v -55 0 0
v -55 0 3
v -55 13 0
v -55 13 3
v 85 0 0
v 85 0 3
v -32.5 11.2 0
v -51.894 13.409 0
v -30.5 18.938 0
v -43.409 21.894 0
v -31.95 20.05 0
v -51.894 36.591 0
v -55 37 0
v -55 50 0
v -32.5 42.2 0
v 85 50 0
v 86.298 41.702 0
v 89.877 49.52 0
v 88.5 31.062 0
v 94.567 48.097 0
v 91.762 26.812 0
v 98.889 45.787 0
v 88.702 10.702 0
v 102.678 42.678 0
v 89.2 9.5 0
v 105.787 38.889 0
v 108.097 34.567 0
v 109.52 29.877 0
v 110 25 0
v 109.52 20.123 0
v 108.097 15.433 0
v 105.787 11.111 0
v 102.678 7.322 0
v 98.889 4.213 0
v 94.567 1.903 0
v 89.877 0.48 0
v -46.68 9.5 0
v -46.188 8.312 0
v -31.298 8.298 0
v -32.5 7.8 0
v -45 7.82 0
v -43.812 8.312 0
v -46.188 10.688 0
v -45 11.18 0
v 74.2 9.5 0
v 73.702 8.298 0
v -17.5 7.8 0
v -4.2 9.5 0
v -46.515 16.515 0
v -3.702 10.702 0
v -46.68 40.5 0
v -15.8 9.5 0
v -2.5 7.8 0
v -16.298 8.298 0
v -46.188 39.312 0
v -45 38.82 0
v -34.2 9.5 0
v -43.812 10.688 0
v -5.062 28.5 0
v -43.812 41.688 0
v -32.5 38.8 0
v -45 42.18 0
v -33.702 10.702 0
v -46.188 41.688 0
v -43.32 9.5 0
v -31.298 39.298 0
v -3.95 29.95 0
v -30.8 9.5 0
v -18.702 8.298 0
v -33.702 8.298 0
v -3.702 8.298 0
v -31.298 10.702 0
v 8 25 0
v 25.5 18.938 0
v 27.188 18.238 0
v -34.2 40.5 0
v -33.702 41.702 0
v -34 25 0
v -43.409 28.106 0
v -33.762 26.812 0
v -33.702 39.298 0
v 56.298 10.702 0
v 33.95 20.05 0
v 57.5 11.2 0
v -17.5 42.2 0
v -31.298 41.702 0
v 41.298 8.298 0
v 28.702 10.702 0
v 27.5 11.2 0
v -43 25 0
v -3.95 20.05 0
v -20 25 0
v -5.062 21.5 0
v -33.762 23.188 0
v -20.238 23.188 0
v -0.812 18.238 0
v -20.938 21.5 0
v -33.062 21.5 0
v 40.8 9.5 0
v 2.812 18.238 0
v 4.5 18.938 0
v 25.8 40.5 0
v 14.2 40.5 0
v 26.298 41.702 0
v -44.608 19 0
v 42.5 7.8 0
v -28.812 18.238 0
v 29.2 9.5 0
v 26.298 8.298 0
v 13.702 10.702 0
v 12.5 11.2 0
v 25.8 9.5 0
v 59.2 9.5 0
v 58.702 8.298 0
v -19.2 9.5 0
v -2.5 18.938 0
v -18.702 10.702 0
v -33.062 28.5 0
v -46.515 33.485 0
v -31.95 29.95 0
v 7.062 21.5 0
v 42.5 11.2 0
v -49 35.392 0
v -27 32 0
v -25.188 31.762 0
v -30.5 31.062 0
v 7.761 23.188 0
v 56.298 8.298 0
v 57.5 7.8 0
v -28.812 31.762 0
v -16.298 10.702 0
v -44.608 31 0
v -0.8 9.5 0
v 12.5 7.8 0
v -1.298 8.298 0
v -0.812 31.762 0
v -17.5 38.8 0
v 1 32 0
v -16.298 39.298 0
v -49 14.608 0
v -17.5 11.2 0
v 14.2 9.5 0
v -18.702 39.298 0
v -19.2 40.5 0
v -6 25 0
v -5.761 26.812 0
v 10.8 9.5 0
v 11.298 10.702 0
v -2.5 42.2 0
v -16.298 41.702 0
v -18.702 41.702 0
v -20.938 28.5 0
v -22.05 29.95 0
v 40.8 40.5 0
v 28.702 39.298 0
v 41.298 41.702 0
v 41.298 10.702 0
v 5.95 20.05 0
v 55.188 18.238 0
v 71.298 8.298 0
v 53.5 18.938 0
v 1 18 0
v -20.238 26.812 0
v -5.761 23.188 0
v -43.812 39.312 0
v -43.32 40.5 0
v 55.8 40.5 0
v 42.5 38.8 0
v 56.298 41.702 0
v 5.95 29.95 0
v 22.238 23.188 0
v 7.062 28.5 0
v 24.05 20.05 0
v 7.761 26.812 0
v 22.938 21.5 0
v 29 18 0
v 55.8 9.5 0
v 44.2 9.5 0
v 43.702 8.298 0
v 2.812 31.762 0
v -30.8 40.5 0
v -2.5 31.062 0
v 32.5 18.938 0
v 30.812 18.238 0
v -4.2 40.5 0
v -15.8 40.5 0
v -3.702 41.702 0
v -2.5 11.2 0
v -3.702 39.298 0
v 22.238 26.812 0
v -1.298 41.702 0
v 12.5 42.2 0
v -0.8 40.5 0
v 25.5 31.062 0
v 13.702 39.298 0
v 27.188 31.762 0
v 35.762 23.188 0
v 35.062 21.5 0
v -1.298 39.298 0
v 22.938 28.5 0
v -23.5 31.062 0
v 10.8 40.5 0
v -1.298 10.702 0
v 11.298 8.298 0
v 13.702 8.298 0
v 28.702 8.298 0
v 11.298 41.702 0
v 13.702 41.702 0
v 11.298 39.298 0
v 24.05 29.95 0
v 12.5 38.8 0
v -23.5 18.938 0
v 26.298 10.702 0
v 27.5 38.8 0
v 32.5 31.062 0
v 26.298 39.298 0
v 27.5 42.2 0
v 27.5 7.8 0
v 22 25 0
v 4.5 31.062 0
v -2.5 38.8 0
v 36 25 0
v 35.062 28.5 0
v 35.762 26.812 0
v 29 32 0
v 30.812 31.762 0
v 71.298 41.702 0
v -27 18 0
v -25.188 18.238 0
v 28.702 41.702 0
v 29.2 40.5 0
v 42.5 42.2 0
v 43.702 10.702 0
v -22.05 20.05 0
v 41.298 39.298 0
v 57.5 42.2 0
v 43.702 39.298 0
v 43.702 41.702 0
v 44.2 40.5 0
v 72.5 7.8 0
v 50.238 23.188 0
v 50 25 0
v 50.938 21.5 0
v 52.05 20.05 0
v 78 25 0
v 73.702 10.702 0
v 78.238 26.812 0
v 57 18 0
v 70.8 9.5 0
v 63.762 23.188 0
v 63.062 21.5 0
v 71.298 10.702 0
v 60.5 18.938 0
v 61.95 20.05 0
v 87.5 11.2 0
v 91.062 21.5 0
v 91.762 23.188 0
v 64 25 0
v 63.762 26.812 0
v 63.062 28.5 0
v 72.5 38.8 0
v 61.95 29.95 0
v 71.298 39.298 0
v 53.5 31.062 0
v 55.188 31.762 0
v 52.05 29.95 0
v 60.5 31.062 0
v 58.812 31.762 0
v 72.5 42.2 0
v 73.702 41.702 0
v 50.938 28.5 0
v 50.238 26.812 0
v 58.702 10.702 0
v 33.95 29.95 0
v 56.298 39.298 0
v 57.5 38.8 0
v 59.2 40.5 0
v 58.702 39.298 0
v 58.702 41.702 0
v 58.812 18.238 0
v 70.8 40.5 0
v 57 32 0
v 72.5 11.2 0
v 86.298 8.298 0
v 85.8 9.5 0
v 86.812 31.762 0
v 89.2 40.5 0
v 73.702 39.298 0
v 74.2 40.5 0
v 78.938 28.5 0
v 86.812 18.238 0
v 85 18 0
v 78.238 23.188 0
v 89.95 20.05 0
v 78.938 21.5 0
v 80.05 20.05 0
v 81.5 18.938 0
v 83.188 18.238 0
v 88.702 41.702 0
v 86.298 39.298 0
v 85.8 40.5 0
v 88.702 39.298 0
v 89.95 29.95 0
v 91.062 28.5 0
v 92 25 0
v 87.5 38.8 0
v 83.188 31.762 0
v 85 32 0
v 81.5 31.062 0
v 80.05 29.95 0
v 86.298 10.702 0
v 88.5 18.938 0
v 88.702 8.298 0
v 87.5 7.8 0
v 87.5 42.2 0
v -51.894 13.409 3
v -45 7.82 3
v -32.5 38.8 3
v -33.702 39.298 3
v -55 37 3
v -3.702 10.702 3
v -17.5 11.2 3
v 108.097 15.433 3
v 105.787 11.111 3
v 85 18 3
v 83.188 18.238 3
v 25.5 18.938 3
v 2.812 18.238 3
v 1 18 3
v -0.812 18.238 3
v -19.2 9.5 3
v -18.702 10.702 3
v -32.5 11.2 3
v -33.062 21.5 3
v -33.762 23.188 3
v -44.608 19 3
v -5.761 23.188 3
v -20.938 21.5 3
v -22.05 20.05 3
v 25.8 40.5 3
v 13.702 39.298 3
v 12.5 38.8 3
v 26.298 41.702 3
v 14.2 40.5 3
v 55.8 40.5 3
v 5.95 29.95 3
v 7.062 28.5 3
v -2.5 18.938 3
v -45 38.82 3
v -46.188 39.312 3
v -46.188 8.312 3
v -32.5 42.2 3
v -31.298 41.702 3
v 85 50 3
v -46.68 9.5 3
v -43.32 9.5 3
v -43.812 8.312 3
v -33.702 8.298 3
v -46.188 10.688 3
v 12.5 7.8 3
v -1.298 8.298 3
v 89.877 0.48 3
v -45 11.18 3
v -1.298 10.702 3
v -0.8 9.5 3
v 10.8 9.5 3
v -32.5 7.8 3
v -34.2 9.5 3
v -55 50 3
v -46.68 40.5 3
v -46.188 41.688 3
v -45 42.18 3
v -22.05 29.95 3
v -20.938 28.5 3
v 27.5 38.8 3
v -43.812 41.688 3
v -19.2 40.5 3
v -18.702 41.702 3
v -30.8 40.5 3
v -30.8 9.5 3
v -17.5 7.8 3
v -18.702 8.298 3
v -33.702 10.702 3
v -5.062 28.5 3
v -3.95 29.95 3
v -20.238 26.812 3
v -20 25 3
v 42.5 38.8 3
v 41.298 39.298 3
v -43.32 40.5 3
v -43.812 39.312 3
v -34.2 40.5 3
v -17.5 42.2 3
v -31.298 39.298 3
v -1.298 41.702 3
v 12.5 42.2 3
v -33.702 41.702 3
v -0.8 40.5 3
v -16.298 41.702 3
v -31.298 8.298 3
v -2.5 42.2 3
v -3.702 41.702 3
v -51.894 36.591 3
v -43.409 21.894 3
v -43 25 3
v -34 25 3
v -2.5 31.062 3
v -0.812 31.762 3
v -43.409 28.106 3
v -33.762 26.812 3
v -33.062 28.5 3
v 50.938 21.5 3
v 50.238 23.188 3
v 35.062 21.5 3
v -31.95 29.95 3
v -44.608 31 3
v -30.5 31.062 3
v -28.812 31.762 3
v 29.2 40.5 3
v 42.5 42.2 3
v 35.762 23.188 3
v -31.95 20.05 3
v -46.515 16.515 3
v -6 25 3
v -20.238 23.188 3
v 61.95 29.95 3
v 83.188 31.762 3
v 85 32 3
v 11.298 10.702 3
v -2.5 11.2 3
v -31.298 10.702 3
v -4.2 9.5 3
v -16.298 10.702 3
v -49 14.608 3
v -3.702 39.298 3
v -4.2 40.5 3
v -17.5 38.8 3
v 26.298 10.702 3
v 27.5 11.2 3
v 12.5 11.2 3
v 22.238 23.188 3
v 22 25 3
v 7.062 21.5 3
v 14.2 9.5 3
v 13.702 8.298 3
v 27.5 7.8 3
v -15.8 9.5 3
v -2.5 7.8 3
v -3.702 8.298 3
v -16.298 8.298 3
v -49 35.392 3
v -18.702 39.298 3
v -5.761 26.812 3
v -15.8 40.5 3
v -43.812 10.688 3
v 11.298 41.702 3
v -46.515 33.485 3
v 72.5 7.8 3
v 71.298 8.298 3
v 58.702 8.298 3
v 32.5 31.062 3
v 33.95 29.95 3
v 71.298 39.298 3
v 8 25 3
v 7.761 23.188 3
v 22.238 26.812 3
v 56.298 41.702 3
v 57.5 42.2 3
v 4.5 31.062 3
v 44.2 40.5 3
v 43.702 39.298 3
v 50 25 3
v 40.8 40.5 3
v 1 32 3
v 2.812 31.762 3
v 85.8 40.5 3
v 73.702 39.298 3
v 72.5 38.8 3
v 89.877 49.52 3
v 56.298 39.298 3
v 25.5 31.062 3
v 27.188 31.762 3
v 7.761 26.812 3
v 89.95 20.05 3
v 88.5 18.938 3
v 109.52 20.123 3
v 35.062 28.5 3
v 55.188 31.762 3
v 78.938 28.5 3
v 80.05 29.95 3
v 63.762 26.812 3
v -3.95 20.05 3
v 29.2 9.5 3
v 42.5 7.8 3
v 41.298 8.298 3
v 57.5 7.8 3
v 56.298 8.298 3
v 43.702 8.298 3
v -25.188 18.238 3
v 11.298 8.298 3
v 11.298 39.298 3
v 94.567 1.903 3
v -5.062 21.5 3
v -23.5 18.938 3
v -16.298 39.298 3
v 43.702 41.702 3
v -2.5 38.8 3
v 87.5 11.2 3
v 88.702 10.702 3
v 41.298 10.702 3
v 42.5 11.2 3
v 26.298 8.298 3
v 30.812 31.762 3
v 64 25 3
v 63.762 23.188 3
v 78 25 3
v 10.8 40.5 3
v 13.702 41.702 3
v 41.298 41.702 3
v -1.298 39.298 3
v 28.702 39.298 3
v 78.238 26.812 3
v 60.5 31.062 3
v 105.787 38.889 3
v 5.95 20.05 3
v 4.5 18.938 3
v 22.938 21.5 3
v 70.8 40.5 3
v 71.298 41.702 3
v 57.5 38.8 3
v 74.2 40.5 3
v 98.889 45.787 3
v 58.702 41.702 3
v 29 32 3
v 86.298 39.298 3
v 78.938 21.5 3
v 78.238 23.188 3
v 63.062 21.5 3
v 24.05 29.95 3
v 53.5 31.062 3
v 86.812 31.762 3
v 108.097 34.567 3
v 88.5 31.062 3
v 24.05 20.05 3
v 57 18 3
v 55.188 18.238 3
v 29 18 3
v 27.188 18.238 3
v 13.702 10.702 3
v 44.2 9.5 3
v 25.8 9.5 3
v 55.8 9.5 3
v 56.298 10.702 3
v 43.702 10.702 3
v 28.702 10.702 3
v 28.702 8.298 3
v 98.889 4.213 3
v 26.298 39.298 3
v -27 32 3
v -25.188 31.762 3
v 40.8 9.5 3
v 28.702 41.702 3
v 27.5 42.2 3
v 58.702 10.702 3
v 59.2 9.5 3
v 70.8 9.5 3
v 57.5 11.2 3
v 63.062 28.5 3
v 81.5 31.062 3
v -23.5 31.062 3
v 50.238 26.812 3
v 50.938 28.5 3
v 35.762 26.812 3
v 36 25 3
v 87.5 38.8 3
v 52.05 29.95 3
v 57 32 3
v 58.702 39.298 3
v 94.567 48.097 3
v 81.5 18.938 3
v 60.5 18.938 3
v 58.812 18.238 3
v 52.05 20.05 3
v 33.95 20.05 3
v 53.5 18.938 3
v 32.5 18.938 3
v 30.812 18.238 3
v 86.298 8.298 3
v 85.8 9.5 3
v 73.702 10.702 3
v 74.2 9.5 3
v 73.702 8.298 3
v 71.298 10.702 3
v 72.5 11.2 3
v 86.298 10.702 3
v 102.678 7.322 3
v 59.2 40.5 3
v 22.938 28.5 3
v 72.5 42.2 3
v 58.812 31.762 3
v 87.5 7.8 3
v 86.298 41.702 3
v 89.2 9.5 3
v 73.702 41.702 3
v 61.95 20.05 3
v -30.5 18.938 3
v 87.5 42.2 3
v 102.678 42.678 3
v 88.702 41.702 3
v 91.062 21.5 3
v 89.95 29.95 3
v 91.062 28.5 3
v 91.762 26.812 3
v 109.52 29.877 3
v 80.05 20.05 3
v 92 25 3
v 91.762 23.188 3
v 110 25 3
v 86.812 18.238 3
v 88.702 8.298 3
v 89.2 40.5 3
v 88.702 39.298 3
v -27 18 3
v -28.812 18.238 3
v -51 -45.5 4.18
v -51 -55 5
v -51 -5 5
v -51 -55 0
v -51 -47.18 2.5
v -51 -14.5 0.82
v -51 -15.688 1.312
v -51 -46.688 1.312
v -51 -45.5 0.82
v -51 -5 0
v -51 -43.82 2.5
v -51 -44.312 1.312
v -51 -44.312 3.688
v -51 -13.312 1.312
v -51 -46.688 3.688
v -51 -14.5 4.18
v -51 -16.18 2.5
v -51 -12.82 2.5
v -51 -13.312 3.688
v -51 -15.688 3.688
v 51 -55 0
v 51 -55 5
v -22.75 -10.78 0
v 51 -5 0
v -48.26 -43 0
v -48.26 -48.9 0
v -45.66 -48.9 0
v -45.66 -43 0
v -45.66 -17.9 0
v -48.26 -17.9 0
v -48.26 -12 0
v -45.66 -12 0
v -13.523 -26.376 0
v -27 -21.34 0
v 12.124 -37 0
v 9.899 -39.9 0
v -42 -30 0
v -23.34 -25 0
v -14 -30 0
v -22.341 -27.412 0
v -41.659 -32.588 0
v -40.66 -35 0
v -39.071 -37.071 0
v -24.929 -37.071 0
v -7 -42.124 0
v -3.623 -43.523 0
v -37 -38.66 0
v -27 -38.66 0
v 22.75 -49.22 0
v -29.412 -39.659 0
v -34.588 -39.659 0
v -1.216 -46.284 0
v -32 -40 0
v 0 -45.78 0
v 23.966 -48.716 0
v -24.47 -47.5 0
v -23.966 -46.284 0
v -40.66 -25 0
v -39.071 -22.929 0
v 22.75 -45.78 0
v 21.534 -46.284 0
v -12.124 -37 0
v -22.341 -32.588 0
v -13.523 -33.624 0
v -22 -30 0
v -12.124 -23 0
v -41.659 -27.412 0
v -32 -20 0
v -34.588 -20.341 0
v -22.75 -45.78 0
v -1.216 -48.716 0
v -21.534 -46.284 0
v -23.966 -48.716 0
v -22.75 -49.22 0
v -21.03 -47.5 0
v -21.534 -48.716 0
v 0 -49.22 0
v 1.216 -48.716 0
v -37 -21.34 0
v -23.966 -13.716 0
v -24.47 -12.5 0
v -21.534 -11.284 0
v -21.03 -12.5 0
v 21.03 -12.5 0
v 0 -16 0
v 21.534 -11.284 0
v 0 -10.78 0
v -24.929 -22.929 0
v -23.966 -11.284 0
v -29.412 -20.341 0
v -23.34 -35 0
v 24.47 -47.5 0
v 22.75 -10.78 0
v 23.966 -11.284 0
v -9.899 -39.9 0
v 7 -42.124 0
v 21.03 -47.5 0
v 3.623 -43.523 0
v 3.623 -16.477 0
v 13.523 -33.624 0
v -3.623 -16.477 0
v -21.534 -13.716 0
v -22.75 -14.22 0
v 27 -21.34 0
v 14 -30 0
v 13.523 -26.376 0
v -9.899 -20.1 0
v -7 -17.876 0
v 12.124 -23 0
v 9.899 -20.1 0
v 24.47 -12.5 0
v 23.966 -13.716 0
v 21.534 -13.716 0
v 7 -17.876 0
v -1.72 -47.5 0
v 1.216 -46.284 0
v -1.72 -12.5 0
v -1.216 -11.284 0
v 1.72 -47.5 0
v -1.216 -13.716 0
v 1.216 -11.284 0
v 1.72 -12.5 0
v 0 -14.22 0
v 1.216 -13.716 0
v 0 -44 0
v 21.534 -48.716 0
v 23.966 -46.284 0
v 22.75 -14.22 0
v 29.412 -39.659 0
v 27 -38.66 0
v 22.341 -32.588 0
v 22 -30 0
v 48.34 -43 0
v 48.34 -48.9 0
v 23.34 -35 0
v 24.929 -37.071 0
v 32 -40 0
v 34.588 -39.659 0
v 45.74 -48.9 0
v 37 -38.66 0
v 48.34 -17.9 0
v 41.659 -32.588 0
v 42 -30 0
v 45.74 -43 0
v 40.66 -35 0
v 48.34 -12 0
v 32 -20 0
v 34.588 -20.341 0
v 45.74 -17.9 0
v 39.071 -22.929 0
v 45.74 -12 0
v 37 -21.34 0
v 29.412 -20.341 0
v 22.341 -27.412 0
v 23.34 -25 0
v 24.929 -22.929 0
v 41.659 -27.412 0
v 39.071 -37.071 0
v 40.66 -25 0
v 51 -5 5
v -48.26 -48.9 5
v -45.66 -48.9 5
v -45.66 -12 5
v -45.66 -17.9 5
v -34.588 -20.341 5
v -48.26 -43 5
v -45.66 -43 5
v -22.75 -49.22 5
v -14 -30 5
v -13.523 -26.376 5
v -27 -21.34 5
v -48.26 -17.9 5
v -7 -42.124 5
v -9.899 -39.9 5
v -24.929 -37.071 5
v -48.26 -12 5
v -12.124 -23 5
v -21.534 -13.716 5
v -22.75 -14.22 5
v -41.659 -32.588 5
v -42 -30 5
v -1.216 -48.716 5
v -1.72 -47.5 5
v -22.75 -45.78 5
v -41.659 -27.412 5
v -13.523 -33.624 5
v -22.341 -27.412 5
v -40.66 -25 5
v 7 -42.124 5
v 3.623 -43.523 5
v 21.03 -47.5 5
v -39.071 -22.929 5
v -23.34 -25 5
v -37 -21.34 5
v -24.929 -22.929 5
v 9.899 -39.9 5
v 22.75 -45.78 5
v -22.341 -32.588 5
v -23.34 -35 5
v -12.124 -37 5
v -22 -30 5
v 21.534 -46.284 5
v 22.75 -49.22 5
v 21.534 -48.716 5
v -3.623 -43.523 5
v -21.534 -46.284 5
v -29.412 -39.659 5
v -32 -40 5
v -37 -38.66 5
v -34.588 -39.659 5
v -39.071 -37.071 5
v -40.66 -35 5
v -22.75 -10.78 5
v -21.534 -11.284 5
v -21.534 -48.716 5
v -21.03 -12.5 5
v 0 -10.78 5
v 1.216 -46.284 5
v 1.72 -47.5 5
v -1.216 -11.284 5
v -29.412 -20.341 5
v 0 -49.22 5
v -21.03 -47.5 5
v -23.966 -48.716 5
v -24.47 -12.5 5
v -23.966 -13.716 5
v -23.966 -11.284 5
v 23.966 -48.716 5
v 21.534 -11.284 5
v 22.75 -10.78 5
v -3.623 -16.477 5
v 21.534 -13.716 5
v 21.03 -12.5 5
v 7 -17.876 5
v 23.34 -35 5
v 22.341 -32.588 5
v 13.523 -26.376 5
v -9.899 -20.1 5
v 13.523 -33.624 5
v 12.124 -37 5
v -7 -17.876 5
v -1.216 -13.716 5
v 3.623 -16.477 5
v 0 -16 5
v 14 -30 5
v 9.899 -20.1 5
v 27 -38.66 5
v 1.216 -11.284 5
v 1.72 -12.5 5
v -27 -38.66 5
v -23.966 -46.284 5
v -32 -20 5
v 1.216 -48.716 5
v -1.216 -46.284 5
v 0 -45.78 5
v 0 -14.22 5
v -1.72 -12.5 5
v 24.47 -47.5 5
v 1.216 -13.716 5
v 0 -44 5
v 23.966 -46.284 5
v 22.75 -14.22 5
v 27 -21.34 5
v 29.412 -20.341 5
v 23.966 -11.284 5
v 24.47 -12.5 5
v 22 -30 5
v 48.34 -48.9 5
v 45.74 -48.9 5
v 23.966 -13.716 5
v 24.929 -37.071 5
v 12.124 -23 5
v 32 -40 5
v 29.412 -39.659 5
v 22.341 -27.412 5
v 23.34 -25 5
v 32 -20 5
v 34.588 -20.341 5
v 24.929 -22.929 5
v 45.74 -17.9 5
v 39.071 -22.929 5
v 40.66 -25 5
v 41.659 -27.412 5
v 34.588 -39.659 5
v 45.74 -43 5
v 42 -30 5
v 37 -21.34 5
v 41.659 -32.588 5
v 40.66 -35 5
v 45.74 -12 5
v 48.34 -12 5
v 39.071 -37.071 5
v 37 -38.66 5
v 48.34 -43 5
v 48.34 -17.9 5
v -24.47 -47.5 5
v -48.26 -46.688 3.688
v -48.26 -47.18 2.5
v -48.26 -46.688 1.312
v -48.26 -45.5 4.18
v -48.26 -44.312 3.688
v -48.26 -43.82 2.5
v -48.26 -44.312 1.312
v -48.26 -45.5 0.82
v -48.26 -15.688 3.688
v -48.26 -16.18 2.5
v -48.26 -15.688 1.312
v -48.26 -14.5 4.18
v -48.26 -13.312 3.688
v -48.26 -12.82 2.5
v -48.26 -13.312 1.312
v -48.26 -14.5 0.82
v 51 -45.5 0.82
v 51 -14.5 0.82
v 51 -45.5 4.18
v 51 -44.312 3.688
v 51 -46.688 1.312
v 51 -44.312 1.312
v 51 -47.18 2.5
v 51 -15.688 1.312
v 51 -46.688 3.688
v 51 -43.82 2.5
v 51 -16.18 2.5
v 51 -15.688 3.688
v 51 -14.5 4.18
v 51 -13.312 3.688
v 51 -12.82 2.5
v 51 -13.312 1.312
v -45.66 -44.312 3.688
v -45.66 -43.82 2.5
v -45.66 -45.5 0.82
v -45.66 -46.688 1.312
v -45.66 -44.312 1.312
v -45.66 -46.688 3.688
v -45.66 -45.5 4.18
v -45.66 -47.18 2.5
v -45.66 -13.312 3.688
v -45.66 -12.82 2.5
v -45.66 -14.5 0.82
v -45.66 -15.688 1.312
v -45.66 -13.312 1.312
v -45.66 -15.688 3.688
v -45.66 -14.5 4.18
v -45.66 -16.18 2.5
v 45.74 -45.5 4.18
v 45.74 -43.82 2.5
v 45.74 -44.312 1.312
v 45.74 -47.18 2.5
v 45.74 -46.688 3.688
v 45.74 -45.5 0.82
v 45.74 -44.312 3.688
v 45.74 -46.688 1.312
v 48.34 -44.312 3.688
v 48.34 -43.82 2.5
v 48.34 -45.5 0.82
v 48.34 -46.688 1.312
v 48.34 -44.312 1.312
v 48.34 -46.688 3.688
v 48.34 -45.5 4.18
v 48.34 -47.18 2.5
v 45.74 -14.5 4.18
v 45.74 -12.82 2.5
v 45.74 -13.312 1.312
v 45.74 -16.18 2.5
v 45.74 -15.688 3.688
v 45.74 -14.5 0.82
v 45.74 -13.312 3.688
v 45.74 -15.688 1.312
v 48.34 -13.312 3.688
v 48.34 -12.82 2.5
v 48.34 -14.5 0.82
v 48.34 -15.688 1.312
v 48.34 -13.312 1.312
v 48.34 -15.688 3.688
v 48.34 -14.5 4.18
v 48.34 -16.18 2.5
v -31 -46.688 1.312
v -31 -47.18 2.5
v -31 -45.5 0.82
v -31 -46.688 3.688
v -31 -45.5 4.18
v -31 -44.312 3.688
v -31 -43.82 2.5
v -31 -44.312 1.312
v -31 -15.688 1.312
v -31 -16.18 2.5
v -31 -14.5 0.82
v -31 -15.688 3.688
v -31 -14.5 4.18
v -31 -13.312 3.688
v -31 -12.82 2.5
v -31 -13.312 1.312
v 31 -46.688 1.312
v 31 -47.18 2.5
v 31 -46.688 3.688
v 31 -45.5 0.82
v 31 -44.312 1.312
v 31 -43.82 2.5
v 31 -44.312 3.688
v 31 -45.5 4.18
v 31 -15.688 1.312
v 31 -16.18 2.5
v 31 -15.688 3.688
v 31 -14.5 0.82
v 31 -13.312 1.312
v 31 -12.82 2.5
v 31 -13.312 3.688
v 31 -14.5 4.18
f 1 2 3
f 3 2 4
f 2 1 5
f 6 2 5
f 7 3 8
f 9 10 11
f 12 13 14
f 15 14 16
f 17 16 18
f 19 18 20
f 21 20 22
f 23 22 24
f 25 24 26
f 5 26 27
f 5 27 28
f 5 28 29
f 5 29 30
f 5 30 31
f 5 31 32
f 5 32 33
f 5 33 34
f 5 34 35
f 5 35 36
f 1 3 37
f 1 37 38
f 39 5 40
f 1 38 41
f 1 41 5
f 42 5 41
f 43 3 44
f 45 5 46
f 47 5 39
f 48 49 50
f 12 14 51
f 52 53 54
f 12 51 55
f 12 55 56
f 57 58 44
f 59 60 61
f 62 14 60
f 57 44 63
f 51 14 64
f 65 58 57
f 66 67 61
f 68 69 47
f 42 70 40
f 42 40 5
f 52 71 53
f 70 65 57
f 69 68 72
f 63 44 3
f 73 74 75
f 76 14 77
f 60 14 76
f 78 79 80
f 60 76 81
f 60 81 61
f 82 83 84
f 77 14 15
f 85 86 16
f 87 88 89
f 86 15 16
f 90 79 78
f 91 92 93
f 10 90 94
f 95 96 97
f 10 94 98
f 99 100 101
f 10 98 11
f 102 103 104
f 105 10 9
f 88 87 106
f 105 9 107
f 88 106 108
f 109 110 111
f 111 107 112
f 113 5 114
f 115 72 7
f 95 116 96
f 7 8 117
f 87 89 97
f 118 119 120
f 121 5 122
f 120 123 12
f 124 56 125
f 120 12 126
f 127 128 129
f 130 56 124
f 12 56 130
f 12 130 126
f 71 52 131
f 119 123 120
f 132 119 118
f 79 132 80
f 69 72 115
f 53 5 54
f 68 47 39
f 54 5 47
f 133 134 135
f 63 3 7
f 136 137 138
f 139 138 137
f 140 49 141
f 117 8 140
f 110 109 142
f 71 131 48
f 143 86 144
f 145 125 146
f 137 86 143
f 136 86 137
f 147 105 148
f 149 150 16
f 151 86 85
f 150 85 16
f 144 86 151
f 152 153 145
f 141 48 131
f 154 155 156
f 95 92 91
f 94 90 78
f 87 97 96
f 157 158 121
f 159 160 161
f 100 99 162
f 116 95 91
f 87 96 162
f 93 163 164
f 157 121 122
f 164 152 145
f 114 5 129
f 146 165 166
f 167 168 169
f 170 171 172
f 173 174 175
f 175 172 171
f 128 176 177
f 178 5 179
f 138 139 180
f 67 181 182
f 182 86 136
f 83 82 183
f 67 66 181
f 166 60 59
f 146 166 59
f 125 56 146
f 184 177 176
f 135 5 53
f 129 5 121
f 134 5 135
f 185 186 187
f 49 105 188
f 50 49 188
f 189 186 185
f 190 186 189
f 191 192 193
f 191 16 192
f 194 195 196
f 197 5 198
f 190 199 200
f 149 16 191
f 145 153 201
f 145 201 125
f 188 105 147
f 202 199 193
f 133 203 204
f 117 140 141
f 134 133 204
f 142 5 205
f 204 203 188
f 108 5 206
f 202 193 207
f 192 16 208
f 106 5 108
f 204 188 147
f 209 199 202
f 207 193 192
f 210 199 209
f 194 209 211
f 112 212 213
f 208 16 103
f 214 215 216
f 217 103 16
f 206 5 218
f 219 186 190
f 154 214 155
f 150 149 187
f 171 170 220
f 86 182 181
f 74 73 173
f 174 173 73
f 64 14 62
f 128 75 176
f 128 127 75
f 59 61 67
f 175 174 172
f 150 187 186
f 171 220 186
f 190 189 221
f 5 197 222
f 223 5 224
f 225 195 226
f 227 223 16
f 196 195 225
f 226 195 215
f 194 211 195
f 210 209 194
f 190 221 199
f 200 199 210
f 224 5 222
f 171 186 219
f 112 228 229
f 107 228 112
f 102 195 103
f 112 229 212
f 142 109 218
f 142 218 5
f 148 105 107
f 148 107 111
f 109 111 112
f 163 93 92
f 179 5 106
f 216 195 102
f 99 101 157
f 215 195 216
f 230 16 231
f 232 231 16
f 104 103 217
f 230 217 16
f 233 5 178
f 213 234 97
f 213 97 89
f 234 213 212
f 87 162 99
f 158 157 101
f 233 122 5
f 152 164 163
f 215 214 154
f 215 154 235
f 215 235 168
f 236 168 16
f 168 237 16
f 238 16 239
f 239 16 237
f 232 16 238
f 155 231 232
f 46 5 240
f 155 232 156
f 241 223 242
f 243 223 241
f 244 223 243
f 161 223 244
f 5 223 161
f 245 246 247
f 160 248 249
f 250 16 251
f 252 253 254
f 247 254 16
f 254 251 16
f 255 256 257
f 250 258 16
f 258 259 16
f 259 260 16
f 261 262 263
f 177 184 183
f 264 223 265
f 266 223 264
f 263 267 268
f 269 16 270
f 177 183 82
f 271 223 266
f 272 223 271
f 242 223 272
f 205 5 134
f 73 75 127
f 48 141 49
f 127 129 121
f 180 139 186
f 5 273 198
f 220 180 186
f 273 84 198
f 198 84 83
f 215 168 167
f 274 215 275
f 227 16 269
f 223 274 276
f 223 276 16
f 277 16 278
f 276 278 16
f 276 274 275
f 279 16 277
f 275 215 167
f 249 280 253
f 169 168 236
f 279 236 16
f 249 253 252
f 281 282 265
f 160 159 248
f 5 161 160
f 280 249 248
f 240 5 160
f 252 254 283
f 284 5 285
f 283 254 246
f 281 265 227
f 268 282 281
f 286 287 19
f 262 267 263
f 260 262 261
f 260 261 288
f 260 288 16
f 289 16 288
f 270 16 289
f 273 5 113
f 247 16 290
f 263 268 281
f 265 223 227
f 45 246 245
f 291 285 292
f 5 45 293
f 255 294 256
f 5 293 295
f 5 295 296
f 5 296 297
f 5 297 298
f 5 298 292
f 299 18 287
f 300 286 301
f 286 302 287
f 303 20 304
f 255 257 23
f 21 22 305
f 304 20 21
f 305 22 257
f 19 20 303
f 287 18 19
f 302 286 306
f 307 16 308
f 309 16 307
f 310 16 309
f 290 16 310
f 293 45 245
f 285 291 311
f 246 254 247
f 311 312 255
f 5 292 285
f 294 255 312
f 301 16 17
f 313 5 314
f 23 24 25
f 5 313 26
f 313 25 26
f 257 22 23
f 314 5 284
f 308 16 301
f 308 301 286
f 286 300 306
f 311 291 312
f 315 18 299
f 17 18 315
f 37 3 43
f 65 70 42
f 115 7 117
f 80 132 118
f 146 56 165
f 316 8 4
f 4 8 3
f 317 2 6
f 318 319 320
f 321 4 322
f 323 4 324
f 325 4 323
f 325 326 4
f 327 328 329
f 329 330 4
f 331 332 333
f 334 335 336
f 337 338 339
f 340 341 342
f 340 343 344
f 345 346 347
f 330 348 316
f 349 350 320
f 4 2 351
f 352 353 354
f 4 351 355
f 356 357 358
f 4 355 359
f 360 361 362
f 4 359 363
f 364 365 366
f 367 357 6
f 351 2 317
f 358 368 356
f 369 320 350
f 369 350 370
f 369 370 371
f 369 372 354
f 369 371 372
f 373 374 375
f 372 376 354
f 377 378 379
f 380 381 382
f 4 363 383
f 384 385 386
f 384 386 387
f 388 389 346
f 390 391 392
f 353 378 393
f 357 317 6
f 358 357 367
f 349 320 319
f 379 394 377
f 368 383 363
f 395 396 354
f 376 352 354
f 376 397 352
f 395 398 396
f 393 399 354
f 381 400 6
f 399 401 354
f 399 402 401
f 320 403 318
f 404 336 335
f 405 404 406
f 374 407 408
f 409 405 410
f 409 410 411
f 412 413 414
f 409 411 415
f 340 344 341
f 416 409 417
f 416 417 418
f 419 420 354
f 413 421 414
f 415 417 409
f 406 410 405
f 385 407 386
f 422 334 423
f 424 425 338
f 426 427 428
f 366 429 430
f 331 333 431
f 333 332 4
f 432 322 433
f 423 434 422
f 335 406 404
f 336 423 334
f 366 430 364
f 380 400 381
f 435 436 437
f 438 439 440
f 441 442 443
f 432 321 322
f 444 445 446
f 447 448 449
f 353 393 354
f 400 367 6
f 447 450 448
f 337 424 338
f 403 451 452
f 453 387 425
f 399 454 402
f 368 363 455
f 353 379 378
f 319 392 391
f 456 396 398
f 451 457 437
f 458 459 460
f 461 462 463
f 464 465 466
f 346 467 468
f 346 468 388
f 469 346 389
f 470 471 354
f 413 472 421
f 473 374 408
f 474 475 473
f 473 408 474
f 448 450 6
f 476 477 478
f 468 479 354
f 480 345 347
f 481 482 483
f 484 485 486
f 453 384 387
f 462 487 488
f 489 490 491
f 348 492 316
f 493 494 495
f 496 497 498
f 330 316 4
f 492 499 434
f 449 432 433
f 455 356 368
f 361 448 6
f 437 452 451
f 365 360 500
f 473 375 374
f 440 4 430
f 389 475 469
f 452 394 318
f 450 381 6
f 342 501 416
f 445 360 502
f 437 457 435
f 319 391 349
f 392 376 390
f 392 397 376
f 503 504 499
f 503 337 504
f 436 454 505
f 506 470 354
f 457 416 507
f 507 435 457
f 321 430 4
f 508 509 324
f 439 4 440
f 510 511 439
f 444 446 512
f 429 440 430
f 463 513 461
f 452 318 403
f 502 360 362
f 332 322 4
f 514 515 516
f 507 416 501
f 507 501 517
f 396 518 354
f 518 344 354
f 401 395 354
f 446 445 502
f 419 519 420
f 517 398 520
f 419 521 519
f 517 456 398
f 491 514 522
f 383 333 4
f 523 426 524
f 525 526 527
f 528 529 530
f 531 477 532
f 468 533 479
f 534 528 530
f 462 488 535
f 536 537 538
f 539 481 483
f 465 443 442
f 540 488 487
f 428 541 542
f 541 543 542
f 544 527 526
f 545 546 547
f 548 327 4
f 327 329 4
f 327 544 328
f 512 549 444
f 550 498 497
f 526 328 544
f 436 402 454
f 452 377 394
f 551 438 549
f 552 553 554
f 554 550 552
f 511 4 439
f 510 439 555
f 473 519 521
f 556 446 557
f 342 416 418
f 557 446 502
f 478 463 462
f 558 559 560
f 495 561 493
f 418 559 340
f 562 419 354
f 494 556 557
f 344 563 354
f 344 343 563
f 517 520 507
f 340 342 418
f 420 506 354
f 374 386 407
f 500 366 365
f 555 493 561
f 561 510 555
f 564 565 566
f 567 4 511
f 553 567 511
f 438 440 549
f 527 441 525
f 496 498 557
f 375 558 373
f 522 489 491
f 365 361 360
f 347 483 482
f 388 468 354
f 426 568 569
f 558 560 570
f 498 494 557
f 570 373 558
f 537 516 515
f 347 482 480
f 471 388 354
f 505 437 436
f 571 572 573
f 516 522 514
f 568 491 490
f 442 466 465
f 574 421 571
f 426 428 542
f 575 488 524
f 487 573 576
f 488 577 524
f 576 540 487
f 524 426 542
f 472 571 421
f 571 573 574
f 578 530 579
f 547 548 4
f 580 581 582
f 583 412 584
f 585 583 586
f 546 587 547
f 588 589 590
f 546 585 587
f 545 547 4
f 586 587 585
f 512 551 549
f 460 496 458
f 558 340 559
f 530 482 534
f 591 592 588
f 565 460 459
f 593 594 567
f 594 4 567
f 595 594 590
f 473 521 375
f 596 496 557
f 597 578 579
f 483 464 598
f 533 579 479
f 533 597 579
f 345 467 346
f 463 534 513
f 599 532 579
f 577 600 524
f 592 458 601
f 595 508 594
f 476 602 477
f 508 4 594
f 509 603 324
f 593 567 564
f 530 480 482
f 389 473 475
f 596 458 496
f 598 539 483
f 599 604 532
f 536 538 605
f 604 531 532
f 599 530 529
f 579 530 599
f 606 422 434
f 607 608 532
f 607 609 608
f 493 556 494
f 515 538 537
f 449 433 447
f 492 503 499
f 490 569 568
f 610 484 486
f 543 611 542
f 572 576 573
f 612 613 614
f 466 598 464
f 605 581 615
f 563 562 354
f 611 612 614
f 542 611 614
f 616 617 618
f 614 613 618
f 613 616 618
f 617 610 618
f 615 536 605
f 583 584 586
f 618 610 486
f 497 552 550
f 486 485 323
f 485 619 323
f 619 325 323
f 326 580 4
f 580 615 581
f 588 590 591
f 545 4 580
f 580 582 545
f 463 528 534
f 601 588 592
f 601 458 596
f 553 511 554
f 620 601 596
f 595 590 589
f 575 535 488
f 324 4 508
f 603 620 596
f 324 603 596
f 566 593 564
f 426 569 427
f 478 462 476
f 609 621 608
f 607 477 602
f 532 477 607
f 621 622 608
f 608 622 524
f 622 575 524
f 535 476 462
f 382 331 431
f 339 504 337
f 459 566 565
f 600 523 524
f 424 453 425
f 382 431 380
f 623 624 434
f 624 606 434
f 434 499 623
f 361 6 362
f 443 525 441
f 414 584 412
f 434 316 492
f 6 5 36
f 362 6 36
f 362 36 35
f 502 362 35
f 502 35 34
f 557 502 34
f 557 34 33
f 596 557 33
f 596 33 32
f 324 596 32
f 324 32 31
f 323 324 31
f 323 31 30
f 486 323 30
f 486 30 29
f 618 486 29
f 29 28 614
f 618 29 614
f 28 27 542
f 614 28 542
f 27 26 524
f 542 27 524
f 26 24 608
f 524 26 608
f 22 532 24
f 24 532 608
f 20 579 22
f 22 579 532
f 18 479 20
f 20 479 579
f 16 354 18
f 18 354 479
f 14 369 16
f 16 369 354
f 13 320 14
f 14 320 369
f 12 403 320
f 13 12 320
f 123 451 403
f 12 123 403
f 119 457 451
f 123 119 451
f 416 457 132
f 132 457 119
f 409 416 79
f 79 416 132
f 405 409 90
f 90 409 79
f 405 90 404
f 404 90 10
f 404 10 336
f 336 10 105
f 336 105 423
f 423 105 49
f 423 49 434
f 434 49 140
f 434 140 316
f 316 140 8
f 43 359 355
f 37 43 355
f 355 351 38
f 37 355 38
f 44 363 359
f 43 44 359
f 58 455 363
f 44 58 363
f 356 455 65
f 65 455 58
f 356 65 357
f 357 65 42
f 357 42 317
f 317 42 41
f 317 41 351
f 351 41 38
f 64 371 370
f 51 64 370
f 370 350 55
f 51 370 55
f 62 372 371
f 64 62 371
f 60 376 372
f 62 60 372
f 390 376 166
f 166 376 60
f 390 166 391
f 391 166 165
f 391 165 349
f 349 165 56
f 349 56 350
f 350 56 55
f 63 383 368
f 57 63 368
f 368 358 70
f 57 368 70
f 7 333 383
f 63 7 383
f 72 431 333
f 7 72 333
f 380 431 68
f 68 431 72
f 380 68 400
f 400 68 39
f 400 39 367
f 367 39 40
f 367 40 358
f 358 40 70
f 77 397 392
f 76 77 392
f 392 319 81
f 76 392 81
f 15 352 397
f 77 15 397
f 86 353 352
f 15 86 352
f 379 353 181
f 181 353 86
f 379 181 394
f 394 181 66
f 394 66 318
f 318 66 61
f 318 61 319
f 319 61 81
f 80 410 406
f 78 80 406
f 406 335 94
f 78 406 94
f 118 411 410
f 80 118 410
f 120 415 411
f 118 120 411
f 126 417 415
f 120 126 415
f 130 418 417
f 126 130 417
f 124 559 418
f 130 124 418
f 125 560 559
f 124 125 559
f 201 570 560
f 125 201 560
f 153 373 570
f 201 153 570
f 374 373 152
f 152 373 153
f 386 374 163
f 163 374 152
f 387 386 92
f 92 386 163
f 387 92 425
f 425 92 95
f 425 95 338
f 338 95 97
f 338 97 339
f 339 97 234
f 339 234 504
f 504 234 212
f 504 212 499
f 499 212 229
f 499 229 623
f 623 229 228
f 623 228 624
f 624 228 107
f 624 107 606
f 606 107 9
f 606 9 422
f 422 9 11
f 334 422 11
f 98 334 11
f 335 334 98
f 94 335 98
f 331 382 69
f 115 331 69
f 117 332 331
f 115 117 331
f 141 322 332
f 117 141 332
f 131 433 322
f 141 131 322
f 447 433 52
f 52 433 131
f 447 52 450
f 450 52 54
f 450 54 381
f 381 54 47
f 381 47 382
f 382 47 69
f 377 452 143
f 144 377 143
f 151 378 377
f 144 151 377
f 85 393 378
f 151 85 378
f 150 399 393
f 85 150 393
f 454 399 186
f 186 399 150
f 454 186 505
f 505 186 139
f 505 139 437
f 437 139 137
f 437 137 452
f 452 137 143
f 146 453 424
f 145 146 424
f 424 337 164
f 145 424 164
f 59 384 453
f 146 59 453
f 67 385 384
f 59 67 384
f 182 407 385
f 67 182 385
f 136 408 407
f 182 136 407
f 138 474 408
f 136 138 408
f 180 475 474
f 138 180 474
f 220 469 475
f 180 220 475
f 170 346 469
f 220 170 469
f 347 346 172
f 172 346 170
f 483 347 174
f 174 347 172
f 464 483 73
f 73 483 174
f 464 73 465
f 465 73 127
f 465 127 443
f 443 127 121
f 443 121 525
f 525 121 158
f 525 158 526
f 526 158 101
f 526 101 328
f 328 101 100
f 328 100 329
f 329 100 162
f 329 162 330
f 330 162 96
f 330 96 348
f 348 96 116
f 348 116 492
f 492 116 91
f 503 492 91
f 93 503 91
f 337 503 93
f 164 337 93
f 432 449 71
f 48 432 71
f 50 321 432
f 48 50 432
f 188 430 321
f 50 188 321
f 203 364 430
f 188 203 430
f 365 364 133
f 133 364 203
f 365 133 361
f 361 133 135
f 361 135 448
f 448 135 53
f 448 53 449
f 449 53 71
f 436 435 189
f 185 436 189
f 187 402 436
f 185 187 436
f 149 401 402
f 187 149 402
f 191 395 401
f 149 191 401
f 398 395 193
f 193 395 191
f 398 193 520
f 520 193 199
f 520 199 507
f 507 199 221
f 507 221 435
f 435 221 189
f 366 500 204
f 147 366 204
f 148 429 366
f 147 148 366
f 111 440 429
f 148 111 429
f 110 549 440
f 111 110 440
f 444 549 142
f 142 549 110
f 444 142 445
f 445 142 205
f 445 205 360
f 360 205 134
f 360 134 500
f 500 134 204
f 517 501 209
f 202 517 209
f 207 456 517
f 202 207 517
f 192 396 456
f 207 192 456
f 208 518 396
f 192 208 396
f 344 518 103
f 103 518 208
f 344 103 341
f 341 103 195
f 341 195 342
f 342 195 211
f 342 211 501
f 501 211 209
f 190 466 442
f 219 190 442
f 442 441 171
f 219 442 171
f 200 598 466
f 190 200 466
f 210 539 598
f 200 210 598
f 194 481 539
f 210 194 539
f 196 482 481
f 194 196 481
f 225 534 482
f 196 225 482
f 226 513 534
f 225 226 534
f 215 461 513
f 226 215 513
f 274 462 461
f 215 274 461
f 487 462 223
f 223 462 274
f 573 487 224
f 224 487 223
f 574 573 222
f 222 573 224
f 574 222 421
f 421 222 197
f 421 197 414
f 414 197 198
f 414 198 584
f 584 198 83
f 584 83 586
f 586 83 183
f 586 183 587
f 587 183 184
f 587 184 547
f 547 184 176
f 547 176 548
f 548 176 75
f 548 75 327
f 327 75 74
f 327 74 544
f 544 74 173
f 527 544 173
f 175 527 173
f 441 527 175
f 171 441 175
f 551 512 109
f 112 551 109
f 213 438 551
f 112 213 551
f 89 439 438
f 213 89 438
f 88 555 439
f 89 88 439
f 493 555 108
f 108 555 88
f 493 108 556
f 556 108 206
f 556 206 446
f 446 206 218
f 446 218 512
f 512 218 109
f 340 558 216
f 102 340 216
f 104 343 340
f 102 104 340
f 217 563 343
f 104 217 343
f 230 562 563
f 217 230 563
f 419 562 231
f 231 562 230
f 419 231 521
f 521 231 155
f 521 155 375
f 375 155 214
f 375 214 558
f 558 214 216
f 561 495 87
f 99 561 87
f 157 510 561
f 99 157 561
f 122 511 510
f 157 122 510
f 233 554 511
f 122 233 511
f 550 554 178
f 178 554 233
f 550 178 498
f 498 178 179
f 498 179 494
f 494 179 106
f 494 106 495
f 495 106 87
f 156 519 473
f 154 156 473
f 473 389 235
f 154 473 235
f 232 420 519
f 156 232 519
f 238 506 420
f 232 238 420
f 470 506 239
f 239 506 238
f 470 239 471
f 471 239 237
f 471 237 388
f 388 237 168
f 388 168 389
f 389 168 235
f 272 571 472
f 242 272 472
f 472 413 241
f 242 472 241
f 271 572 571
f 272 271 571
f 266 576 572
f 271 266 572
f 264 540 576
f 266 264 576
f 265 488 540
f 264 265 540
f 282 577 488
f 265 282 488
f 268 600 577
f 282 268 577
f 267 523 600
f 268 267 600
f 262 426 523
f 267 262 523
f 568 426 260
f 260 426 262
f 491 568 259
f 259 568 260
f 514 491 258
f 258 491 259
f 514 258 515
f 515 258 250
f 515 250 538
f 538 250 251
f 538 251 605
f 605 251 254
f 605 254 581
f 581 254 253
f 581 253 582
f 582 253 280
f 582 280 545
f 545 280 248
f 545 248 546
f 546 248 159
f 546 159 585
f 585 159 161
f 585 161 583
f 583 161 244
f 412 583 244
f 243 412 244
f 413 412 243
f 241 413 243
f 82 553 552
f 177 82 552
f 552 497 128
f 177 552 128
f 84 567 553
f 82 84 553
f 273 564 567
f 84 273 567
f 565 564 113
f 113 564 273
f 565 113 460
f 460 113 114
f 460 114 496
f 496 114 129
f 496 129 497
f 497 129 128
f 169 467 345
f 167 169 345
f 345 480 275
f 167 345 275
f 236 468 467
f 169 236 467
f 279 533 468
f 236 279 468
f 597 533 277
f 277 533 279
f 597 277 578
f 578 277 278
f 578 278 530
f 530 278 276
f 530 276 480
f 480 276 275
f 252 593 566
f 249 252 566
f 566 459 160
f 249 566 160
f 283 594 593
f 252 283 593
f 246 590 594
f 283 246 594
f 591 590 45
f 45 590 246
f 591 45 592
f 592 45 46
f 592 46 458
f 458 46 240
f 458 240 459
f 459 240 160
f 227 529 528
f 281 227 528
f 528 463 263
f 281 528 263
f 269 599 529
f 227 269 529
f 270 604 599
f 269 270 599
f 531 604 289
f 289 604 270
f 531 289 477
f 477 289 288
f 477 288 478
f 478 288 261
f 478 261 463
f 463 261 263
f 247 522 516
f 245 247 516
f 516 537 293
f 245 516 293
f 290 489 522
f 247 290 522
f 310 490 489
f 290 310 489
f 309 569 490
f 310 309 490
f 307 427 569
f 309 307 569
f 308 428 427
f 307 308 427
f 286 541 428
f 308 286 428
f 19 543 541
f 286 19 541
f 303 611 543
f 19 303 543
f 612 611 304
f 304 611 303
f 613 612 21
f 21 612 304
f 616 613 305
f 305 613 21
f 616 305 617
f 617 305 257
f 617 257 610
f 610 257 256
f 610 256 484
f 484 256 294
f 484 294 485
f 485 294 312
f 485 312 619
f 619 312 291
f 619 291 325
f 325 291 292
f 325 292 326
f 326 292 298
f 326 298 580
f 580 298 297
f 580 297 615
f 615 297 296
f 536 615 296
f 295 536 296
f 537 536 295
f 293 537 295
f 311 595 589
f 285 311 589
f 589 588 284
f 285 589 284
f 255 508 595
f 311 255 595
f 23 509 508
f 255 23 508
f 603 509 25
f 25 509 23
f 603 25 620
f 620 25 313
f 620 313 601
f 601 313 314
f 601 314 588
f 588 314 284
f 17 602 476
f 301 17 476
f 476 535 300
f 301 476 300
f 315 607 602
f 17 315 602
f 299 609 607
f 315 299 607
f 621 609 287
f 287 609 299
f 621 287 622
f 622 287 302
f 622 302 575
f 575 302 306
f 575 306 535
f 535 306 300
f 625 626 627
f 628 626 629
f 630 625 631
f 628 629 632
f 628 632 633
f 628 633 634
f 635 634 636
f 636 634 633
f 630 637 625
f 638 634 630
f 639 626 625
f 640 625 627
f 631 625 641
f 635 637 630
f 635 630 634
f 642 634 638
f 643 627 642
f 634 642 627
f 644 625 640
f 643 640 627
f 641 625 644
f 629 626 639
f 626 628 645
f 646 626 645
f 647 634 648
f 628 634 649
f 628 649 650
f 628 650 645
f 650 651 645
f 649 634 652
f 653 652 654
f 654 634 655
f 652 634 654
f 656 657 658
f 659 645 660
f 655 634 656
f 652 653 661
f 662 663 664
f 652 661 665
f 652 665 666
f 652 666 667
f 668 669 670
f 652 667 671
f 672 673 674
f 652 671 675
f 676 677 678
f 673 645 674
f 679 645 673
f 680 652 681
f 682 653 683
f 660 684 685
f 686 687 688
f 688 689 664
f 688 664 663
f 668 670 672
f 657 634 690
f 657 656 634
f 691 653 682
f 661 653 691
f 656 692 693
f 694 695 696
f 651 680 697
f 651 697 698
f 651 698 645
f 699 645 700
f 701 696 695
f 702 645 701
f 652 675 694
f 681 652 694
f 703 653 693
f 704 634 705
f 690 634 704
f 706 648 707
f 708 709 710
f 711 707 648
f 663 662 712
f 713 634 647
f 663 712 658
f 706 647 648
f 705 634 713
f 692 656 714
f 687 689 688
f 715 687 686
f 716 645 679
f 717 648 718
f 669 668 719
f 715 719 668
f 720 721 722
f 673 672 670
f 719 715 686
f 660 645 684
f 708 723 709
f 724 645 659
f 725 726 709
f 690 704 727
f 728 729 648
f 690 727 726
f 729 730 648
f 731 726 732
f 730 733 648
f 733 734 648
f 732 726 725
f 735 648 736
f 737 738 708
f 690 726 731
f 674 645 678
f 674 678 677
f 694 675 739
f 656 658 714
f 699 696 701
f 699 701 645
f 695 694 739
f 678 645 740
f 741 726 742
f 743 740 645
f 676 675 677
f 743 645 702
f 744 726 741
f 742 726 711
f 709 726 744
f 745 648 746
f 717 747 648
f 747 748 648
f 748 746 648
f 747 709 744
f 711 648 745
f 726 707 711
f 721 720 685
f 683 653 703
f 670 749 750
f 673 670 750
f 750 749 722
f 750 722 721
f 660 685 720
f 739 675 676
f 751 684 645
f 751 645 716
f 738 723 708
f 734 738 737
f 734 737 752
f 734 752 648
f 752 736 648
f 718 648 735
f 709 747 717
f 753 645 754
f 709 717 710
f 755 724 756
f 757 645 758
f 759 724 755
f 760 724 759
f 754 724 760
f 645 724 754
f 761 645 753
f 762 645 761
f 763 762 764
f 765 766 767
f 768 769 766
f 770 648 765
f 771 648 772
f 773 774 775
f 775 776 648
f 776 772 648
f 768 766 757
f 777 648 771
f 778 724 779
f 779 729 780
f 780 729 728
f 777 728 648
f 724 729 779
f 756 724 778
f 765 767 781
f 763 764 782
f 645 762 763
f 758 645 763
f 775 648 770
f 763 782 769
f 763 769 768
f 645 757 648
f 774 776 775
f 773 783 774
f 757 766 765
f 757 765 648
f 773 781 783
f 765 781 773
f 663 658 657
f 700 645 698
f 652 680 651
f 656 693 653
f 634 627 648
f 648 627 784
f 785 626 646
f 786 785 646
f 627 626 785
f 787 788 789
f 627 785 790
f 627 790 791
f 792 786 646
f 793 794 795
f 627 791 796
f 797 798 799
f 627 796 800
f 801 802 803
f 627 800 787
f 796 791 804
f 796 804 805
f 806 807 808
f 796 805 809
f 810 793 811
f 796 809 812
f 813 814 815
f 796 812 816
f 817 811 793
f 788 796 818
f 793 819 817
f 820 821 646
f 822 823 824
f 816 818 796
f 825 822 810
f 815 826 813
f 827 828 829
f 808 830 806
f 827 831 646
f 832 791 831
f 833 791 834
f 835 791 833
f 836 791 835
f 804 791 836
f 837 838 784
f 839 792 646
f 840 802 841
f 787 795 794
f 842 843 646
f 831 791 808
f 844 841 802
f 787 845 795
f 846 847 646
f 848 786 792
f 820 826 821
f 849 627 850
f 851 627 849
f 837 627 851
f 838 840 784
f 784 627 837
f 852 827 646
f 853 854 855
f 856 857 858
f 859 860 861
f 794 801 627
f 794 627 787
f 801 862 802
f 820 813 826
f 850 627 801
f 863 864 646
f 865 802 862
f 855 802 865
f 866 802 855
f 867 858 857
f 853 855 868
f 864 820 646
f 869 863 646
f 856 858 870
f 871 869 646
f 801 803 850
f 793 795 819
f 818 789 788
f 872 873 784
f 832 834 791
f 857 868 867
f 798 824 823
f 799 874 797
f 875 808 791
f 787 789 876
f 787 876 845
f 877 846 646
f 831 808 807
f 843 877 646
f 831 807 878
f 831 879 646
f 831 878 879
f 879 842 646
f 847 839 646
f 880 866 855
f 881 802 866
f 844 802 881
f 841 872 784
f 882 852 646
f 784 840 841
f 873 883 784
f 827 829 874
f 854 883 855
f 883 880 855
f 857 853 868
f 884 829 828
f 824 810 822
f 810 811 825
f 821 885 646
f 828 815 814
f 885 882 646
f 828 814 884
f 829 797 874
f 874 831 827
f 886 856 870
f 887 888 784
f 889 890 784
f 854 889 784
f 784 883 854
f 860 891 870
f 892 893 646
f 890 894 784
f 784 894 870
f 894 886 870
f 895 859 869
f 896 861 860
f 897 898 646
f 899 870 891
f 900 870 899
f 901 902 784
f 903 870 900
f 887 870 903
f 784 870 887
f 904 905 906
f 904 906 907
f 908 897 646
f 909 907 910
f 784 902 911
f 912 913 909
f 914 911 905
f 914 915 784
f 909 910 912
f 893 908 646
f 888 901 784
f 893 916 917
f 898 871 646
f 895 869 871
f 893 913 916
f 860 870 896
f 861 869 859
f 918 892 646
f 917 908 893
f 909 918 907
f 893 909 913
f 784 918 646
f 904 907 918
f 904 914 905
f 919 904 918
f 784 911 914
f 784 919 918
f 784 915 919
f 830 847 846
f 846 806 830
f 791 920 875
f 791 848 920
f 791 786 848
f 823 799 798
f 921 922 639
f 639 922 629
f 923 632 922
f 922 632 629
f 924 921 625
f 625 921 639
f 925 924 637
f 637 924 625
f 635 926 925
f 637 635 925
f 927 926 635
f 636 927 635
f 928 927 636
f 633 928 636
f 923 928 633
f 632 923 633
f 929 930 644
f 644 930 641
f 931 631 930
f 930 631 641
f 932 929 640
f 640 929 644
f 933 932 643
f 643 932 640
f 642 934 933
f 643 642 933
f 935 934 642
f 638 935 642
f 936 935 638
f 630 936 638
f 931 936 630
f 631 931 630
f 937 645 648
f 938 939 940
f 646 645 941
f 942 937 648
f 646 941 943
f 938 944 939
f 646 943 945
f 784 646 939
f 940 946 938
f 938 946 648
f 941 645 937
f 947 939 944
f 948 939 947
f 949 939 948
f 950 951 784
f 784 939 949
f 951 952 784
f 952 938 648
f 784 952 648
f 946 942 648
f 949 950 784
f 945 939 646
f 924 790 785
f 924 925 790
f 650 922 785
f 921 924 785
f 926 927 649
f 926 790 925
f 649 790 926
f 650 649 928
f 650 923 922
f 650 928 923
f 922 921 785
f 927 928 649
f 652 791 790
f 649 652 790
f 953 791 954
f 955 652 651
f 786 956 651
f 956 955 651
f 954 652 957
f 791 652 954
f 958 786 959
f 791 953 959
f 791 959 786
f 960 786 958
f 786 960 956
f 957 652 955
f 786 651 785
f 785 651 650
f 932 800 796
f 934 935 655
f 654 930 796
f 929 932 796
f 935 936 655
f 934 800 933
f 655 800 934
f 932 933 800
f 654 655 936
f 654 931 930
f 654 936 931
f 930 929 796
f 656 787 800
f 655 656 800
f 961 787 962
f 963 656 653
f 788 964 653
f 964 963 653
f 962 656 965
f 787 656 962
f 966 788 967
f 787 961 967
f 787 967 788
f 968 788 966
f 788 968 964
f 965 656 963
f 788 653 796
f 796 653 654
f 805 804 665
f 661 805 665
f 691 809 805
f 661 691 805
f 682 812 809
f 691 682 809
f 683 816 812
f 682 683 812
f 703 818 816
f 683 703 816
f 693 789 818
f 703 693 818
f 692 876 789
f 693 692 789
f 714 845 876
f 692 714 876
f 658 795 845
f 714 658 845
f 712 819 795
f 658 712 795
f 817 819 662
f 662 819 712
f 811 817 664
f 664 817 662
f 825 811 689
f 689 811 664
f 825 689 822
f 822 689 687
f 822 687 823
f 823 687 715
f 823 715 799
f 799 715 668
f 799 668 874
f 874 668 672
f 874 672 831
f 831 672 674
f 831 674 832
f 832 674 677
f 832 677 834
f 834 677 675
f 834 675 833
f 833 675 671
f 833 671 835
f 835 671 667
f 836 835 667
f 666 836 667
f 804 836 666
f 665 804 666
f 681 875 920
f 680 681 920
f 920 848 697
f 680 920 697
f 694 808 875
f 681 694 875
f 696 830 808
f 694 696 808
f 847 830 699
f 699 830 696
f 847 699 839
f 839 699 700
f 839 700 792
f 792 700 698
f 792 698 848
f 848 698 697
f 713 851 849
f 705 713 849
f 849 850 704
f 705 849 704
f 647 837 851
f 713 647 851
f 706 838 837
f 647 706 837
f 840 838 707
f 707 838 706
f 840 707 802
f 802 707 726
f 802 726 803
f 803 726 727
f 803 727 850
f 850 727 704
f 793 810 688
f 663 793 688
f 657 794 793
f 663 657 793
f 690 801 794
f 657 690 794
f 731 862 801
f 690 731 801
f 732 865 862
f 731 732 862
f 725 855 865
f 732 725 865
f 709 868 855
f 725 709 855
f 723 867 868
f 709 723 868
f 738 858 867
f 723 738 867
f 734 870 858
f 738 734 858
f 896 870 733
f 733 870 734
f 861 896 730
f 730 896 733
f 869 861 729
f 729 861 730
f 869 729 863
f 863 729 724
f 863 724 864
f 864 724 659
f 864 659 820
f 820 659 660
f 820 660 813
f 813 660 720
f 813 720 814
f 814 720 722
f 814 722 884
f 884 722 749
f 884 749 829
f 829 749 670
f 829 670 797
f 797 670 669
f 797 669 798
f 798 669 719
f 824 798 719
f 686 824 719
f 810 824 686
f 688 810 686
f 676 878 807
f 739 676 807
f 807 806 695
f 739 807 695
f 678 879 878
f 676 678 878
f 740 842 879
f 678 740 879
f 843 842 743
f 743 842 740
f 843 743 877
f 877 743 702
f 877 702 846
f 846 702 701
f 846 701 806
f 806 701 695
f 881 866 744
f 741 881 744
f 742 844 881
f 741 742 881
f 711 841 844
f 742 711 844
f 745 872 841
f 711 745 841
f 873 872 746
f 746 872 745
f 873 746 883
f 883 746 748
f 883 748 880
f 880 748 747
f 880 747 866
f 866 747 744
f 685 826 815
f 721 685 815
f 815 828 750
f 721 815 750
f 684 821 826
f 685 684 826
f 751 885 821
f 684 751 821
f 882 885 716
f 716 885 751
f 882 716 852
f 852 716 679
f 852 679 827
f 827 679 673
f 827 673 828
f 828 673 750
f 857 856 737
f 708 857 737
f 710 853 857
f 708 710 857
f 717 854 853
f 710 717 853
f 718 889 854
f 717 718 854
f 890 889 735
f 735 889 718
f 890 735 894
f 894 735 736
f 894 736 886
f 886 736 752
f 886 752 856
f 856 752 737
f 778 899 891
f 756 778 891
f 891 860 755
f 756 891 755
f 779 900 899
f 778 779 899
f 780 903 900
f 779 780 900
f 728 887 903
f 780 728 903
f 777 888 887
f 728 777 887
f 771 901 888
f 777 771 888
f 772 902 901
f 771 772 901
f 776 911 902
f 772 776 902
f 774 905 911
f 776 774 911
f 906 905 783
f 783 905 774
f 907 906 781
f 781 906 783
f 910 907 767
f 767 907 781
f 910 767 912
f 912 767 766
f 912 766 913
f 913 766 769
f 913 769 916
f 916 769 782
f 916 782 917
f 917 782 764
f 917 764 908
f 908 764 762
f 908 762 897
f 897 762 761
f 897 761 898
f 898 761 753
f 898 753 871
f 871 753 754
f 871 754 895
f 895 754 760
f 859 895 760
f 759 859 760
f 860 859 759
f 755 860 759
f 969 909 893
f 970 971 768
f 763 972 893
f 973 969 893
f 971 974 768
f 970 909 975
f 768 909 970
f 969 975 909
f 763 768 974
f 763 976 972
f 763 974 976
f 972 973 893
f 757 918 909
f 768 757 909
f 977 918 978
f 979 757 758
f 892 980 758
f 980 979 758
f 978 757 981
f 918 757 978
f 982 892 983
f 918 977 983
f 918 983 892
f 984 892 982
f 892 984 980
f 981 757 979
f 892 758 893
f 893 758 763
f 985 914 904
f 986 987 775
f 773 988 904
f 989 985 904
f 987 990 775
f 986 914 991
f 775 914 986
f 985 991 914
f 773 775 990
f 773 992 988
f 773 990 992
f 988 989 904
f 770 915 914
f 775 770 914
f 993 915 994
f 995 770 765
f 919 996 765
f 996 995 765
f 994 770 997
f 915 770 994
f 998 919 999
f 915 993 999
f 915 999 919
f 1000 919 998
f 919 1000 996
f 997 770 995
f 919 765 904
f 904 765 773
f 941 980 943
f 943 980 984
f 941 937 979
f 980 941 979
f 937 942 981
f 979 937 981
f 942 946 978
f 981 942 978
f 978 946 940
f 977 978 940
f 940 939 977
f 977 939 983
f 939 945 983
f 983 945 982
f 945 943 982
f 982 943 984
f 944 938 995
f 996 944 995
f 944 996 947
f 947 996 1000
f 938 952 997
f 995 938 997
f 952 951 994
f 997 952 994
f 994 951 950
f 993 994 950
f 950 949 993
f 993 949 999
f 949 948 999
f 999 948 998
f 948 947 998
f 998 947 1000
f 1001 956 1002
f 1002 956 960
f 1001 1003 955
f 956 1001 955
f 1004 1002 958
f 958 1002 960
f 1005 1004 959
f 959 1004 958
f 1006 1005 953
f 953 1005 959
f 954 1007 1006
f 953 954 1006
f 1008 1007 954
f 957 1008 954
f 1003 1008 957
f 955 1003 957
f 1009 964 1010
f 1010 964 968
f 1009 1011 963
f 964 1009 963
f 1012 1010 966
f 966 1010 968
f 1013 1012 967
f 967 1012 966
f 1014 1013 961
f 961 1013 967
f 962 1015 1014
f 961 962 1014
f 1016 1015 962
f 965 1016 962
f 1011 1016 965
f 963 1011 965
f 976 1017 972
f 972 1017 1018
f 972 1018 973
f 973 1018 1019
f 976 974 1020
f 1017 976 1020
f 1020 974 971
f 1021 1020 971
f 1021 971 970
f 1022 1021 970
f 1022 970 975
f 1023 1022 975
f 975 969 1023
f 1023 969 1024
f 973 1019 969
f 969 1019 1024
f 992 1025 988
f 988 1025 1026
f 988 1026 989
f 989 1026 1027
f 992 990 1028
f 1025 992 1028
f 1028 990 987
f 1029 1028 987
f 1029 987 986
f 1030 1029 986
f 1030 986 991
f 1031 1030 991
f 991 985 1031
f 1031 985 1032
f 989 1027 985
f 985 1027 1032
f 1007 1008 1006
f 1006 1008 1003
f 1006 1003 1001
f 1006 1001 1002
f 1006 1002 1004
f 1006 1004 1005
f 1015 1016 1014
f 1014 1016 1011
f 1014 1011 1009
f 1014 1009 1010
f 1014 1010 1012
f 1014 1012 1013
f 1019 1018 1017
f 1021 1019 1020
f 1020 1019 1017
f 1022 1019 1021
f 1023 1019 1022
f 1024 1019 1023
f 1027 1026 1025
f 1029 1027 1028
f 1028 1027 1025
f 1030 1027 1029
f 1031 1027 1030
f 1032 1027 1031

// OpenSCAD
// file: dimensions.scad
// Originally created by Jose Julio
// https://github.com/JJulio/b-robot

SHARED_HEIGHT = 140;
SHARED_LENGTH = 102;
SHARED_WIDTH  = 50;
// file: support_plate.scad
// Originally created by Jose Julio
// https://github.com/JJulio/b-robot

include <dimensions.scad>;

module support()
{
  translate([-(SHARED_LENGTH)/2,0,0]) cube([SHARED_LENGTH,SHARED_WIDTH,5]);

}

module support_holes()
{
  // M3 lateral holes
  translate([(SHARED_LENGTH)/2,9.5,5/2]) rotate([0,90,0]) cylinder(r=1.68,h=40,$fn=8,center=true);
  translate([(SHARED_LENGTH)/2,9.5+31,5/2]) rotate([0,90,0]) cylinder(r=1.68,h=40,$fn=8,center=true);
  translate([-(SHARED_LENGTH)/2,9.5,5/2]) rotate([0,90,0]) cylinder(r=1.68,h=40,$fn=8,center=true);
  translate([-(SHARED_LENGTH)/2,9.5+31,5/2]) rotate([0,90,0]) cylinder(r=1.68,h=40,$fn=8,center=true);

  // M3 NUT holes
  translate([(SHARED_LENGTH)/2-(4+1.26),9-2.9,-1]) cube([2.6,5.9,7]);
  translate([(SHARED_LENGTH)/2-(4+1.26),9+31-2.9,-1]) cube([2.6,5.9,7]);
  translate([-(SHARED_LENGTH)/2+(4-1.26),9-2.9,-1]) cube([2.6,5.9,7]);
  translate([-(SHARED_LENGTH)/2+(4-1.26),9+31-2.9,-1]) cube([2.6,5.9,7]);

  // Board mount holes
  translate([45.5/2,SHARED_WIDTH/2+35/2]) cylinder(r=1.72,h=20,$fn=8,center=true);
  translate([45.5/2,SHARED_WIDTH/2-35/2]) cylinder(r=1.72,h=20,$fn=8,center=true);
  translate([-45.5/2,SHARED_WIDTH/2+35/2]) cylinder(r=1.72,h=20,$fn=8,center=true);
  translate([-45.5/2,SHARED_WIDTH/2-35/2]) cylinder(r=1.72,h=20,$fn=8,center=true);
  // Aditional holes
  translate([0,SHARED_WIDTH/2+35/2]) cylinder(r=1.72,h=20,$fn=8,center=true);
  translate([0,SHARED_WIDTH/2-35/2]) cylinder(r=1.72,h=20,$fn=8,center=true);

  // Light holes
  translate([0,SHARED_WIDTH/2,0]) cylinder(r=14,h=20,$fn=24,center=true);
  translate([-32,SHARED_WIDTH/2,0]) cylinder(r=10,h=20,$fn=24,center=true);
  translate([32,SHARED_WIDTH/2,0]) cylinder(r=10,h=20,$fn=24,center=true);
}

difference()
{
support();
support_holes();
}
// file: upright.scad
// Originally created by Jose Julio
// https://github.com/JJulio/b-robot

include <dimensions.scad>;

module upright()
{
  translate([-(SHARED_HEIGHT)/2,0,0]) cube([SHARED_HEIGHT,SHARED_WIDTH,3]);
  translate([(SHARED_HEIGHT/2),SHARED_WIDTH/2,1.5]) cylinder(r=SHARED_WIDTH/2,h=3,$fn=32,center=true);
}

module upright_holes()
{
  // Motor shaft hole
  translate([-SHARED_HEIGHT/2,SHARED_WIDTH/2,0]) cylinder(r=12,h=10,$fn=24,center=true);
  // Motor mount holes
  translate([-(SHARED_HEIGHT-20)/2,9.5,0]) cylinder(r=1.68,h=10,$fn=8,center=true);
  translate([-(SHARED_HEIGHT-20)/2,9.5+31,0]) cylinder(r=1.68,h=10,$fn=8,center=true);

  //Holes
  for ( i = [0 : 8] ){
    translate([-(SHARED_HEIGHT-45-i*30)/2,9.5,0]) cylinder(r=1.7,h=10,$fn=8,center=true);
    translate([-(SHARED_HEIGHT-45-i*30)/2,9.5+31,0]) cylinder(r=1.7,h=10,$fn=8,center=true);
  }

  // Light holes
  for ( i = [0 : 8] ){
    translate([(SHARED_HEIGHT/2)-i*28,SHARED_WIDTH/2,0]) cylinder(r=7,h=8,$fn=24,center=true);
  }
}

difference()
{
upright();
upright_holes();
}
// main file
use <upright.scad>;
use <support_plate.scad>;

translate([15,0,0]) difference()
{
upright();
upright_holes();
}

translate([0,-55,0]) difference()
{
support();
support_holes();
}
